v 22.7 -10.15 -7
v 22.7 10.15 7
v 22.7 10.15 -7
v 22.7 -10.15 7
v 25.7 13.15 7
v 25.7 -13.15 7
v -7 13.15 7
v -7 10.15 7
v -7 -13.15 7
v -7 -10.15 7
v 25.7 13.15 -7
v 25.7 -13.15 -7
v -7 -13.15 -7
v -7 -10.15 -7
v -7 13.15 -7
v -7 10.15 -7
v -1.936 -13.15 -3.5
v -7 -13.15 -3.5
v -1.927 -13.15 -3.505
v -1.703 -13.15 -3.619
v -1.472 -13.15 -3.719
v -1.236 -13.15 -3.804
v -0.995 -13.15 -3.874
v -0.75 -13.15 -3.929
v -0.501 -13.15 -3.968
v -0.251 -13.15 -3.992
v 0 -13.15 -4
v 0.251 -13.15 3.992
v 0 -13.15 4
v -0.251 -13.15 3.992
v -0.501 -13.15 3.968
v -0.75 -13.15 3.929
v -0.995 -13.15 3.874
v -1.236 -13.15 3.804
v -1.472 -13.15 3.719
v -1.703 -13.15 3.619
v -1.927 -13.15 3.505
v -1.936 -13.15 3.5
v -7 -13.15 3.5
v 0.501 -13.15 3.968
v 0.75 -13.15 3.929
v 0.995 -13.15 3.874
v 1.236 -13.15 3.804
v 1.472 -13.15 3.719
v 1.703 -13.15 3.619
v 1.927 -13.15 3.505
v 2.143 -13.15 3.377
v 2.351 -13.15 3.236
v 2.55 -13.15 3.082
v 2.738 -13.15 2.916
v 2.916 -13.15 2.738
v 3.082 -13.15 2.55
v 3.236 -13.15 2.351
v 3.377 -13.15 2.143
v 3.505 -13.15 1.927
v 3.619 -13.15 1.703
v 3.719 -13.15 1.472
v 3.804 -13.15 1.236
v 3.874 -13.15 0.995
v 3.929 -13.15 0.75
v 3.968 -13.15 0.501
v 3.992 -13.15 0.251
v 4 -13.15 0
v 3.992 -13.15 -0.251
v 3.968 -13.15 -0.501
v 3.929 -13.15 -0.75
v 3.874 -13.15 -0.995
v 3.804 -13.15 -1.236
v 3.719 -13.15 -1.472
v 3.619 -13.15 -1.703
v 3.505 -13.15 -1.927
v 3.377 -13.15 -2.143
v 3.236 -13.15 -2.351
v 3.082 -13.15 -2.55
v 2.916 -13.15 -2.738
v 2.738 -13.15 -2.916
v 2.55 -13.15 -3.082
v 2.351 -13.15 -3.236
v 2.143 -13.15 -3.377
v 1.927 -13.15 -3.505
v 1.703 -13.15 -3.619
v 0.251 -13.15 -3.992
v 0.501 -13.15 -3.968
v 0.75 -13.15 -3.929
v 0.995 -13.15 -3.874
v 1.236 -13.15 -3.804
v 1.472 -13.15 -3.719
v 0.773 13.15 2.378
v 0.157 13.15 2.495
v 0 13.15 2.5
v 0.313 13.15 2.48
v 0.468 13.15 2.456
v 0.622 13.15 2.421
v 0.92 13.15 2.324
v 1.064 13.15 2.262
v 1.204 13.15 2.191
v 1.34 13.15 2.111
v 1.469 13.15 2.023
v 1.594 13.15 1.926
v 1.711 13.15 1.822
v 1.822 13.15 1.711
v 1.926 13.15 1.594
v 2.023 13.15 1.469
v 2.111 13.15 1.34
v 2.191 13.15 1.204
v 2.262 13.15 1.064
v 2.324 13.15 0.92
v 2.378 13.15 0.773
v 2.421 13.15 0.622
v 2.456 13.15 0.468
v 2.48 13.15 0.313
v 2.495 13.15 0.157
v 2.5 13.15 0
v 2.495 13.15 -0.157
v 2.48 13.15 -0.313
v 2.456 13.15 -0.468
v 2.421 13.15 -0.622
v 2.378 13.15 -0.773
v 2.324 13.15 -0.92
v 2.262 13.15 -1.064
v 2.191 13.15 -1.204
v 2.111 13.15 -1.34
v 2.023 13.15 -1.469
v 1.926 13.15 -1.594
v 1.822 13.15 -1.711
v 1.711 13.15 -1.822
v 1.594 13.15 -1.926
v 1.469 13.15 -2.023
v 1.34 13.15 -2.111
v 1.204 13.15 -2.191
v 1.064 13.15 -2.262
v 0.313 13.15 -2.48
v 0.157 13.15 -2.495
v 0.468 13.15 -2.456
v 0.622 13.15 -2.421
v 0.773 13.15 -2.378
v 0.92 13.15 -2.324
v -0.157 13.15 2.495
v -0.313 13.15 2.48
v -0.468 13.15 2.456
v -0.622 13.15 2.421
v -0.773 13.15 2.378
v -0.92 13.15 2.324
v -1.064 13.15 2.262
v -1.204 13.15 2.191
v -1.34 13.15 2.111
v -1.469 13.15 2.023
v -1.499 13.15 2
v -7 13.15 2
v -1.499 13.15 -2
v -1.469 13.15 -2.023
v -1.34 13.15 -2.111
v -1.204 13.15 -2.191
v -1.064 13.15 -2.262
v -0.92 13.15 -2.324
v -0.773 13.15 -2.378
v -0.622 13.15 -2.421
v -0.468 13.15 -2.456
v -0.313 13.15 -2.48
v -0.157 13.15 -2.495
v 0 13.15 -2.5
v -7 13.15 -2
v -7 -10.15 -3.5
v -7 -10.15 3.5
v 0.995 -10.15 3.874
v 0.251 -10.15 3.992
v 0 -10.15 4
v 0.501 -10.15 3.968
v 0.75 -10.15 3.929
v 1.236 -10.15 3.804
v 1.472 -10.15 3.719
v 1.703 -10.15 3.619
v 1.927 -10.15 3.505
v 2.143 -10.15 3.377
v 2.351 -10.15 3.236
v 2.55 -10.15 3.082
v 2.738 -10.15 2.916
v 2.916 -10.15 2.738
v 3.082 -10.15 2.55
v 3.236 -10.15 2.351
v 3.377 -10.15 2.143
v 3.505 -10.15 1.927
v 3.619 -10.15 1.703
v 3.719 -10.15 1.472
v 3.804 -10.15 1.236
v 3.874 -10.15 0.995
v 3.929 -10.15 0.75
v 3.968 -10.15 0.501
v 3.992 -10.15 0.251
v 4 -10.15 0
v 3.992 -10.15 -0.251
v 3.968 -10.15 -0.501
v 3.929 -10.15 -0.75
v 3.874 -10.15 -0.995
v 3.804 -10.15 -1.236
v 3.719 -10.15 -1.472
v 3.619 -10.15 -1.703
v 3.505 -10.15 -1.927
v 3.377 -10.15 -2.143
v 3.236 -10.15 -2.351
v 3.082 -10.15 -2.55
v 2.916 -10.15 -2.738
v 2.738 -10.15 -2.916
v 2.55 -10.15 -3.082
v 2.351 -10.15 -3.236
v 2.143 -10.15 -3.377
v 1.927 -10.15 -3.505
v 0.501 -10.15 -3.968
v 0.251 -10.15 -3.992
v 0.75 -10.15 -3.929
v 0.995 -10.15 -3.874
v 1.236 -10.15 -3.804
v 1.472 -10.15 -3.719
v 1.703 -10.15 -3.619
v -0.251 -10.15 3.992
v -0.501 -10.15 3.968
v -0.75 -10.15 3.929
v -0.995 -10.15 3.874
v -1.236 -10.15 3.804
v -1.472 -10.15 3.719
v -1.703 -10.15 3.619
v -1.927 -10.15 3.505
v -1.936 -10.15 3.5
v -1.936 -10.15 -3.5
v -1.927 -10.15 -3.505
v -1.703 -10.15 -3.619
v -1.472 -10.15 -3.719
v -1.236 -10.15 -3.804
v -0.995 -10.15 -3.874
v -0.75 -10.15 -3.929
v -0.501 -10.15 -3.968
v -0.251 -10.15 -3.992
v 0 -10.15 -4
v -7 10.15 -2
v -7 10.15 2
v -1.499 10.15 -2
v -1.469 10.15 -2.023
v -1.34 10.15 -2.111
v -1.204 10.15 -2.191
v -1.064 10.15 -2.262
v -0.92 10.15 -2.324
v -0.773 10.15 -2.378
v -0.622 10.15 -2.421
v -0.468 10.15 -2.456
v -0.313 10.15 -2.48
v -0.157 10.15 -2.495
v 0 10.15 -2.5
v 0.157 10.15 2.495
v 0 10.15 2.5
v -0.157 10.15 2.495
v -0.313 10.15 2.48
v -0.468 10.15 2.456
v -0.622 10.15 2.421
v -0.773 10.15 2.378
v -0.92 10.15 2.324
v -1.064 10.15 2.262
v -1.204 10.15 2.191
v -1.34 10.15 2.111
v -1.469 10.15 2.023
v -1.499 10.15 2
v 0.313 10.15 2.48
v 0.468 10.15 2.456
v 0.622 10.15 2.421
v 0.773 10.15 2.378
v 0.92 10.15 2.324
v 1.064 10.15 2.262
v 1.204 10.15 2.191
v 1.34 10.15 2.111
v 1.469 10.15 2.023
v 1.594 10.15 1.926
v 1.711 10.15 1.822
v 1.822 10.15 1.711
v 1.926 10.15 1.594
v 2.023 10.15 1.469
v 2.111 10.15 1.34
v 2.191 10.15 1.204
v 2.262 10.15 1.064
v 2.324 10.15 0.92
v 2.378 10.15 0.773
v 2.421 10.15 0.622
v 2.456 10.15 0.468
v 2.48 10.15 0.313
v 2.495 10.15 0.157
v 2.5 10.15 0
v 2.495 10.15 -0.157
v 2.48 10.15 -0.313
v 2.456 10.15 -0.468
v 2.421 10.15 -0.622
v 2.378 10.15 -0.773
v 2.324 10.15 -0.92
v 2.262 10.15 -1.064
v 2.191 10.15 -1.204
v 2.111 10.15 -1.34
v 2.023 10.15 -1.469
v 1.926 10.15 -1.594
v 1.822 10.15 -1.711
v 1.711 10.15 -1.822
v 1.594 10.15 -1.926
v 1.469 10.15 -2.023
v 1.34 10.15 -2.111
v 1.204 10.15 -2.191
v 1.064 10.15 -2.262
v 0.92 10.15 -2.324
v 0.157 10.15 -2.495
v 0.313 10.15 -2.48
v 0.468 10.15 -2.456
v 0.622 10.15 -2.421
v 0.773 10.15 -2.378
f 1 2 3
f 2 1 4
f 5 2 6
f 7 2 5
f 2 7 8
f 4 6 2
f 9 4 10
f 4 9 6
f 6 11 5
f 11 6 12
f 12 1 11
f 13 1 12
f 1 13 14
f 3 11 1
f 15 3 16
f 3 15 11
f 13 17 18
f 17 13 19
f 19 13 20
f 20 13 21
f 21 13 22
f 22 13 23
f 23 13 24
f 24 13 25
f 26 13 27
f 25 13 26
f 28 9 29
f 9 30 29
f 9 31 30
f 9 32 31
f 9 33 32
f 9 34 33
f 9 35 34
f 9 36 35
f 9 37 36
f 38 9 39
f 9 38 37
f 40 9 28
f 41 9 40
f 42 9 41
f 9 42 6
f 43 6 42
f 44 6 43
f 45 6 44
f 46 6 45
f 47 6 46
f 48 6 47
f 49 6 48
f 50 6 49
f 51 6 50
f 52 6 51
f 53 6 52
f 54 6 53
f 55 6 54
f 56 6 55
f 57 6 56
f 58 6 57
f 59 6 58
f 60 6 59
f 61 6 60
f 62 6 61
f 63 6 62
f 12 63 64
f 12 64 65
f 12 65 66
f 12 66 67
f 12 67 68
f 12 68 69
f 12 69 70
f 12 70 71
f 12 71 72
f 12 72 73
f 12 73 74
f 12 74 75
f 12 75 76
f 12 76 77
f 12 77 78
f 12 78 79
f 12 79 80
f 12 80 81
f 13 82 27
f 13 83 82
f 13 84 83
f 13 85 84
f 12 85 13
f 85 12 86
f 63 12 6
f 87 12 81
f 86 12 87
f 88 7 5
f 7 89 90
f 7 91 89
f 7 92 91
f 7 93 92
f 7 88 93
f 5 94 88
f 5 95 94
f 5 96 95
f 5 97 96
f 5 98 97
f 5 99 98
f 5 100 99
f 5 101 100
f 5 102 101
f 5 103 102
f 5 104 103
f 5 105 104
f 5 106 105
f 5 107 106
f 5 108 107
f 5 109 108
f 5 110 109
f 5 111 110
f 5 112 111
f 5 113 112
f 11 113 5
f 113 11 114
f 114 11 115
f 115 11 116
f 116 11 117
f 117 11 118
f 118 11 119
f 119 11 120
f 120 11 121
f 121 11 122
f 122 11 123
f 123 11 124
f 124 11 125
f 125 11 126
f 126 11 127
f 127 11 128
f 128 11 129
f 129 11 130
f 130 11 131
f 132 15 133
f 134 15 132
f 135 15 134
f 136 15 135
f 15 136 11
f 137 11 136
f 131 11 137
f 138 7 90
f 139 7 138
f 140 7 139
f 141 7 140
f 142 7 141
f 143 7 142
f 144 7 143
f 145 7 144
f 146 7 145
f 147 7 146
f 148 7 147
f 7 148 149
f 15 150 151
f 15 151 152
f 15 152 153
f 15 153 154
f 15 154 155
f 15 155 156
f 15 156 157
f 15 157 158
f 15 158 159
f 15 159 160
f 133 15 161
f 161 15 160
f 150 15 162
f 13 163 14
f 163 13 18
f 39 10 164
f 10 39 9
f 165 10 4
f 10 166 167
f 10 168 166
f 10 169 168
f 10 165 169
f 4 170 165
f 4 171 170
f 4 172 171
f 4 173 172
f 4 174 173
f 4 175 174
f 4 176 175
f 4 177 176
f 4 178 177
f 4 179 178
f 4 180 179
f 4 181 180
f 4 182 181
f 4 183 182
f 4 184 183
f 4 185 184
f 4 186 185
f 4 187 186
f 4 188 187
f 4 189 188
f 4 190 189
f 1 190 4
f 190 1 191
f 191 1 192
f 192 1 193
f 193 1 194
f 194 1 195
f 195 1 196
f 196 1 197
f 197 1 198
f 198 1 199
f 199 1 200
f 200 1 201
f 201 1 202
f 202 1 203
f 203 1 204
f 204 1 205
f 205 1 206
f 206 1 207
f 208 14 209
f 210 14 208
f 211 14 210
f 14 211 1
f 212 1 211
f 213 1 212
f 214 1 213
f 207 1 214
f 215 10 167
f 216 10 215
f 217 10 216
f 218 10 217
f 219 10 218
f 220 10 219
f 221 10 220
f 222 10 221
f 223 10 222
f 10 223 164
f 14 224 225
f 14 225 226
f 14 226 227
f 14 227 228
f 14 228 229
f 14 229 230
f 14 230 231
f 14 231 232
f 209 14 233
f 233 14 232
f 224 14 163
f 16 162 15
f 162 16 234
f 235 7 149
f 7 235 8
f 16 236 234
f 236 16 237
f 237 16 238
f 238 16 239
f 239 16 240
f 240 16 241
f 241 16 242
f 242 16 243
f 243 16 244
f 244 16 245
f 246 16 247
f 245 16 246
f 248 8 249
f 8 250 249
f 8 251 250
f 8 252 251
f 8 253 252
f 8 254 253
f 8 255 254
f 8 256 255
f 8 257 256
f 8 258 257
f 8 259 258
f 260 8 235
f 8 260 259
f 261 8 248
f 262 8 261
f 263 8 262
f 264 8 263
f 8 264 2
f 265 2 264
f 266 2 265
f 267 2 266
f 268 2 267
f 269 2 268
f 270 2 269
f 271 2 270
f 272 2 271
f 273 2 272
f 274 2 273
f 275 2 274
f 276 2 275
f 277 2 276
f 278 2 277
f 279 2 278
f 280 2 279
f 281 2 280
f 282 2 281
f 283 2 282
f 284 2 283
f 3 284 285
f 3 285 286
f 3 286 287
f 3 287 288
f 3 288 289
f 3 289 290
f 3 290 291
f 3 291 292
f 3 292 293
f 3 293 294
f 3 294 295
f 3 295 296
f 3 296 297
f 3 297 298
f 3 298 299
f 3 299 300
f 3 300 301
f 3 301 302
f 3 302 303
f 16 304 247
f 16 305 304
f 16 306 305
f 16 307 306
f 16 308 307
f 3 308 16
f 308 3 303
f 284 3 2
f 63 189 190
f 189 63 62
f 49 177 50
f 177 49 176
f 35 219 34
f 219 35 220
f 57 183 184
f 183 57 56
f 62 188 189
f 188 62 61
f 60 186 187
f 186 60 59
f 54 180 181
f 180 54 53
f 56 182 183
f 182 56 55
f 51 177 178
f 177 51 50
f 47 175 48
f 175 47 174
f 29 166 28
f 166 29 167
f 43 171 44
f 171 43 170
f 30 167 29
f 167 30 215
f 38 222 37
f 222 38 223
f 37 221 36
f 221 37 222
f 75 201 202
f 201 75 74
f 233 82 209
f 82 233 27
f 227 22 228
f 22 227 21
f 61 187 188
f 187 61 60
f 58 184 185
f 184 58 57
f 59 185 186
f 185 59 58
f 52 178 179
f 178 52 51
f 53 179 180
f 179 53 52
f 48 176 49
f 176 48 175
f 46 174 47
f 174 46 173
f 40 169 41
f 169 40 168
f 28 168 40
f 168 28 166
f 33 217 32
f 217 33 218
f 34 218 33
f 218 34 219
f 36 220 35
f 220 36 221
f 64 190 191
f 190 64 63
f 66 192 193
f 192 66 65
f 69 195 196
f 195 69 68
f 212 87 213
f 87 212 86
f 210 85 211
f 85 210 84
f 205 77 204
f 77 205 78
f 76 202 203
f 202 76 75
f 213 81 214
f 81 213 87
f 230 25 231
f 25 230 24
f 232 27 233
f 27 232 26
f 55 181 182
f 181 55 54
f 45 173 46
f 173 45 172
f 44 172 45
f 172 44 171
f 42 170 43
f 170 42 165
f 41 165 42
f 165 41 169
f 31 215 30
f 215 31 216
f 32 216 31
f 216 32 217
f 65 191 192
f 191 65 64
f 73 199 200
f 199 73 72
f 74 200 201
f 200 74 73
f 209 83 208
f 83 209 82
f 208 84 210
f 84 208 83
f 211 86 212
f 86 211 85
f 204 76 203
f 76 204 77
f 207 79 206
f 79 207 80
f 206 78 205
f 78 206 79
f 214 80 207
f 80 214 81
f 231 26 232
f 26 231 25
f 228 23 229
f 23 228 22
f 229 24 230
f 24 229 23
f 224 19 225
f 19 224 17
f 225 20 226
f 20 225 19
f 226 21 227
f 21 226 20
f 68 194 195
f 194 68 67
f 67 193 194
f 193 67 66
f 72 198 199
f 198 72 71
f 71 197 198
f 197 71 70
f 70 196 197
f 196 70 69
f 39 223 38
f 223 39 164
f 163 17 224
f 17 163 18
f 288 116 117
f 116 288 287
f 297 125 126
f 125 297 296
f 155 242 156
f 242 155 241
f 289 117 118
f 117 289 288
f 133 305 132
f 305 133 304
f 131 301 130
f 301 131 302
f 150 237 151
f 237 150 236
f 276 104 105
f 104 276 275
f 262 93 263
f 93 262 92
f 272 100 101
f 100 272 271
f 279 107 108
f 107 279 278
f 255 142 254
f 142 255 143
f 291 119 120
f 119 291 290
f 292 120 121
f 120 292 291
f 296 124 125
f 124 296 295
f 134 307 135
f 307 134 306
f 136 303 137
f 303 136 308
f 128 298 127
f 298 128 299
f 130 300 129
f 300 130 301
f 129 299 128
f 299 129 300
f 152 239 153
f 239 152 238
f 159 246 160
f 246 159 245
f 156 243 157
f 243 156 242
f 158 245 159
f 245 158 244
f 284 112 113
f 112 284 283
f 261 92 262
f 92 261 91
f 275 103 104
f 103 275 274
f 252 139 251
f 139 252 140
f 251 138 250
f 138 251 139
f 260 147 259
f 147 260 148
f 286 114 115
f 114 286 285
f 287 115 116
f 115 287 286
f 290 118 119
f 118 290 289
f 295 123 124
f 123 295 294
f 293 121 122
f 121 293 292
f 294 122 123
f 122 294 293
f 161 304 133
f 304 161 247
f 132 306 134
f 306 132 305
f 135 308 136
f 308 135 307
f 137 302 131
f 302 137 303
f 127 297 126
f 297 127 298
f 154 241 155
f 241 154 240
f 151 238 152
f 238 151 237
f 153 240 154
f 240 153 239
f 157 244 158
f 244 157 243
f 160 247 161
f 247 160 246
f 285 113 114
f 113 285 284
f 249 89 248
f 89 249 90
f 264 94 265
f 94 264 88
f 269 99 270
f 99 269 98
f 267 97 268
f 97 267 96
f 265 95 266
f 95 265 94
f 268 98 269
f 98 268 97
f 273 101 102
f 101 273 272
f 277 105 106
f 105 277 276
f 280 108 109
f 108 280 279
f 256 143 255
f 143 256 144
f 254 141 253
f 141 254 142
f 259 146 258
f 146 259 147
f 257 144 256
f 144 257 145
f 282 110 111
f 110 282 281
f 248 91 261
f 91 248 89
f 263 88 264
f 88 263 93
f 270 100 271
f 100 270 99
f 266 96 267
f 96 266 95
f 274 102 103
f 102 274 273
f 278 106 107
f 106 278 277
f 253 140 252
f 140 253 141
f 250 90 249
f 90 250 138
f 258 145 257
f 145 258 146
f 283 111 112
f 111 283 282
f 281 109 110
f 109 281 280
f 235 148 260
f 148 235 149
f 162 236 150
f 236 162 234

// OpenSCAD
$fn = 100;
thickness = 3;
//thickness of the gearbox and the carriers
boxthickness = 10+5*2+.3;
//output boltdia
boltdia = 8;
//input motor shaftdia
shaftdia = 5;
//small bump to keep grip
bump = .5;
//legnth of the gearbox
gearboxside = 45.4;



difference(){
    union(){
        translate([gearboxside/2,-(boxthickness+thickness*2)/2,-(boltdia+thickness*2)/2]){cube([thickness, boxthickness+thickness*2,boltdia+thickness*2]);}
        translate([-boltdia/2-thickness,-(boxthickness+thickness*2)/2,-(boltdia+thickness*2)/2]){cube([gearboxside/2+boltdia/2+thickness,thickness,boltdia+thickness*2]);}
        translate([-boltdia/2-thickness,(boxthickness+thickness*2)/2-thickness,-(boltdia+thickness*2)/2]){cube([gearboxside/2+boltdia/2+thickness,thickness,boltdia+thickness*2]);}
    }
    
    union(){
        translate(){rotate(a= [90,0,0]){cylinder(r = boltdia/2, h = (boxthickness+thickness*2)/2+1);}}
        translate([-(boltdia+thickness+1),-((boxthickness+thickness*2)/2+1),-(boltdia-bump*2)/2]){cube([boltdia+thickness+1,(boxthickness+thickness*2)/2+1,boltdia-bump*2]);}
       translate(){rotate(a= [270,0,0]){cylinder(r = shaftdia/2, h = (boxthickness+thickness*2)/2+1);}}
        translate([-(boltdia+thickness+1),0,-(shaftdia-bump*2)/2]){cube([boltdia+thickness+1,(boxthickness+thickness*2)/2+1,shaftdia-bump*2]);}
    }
}
